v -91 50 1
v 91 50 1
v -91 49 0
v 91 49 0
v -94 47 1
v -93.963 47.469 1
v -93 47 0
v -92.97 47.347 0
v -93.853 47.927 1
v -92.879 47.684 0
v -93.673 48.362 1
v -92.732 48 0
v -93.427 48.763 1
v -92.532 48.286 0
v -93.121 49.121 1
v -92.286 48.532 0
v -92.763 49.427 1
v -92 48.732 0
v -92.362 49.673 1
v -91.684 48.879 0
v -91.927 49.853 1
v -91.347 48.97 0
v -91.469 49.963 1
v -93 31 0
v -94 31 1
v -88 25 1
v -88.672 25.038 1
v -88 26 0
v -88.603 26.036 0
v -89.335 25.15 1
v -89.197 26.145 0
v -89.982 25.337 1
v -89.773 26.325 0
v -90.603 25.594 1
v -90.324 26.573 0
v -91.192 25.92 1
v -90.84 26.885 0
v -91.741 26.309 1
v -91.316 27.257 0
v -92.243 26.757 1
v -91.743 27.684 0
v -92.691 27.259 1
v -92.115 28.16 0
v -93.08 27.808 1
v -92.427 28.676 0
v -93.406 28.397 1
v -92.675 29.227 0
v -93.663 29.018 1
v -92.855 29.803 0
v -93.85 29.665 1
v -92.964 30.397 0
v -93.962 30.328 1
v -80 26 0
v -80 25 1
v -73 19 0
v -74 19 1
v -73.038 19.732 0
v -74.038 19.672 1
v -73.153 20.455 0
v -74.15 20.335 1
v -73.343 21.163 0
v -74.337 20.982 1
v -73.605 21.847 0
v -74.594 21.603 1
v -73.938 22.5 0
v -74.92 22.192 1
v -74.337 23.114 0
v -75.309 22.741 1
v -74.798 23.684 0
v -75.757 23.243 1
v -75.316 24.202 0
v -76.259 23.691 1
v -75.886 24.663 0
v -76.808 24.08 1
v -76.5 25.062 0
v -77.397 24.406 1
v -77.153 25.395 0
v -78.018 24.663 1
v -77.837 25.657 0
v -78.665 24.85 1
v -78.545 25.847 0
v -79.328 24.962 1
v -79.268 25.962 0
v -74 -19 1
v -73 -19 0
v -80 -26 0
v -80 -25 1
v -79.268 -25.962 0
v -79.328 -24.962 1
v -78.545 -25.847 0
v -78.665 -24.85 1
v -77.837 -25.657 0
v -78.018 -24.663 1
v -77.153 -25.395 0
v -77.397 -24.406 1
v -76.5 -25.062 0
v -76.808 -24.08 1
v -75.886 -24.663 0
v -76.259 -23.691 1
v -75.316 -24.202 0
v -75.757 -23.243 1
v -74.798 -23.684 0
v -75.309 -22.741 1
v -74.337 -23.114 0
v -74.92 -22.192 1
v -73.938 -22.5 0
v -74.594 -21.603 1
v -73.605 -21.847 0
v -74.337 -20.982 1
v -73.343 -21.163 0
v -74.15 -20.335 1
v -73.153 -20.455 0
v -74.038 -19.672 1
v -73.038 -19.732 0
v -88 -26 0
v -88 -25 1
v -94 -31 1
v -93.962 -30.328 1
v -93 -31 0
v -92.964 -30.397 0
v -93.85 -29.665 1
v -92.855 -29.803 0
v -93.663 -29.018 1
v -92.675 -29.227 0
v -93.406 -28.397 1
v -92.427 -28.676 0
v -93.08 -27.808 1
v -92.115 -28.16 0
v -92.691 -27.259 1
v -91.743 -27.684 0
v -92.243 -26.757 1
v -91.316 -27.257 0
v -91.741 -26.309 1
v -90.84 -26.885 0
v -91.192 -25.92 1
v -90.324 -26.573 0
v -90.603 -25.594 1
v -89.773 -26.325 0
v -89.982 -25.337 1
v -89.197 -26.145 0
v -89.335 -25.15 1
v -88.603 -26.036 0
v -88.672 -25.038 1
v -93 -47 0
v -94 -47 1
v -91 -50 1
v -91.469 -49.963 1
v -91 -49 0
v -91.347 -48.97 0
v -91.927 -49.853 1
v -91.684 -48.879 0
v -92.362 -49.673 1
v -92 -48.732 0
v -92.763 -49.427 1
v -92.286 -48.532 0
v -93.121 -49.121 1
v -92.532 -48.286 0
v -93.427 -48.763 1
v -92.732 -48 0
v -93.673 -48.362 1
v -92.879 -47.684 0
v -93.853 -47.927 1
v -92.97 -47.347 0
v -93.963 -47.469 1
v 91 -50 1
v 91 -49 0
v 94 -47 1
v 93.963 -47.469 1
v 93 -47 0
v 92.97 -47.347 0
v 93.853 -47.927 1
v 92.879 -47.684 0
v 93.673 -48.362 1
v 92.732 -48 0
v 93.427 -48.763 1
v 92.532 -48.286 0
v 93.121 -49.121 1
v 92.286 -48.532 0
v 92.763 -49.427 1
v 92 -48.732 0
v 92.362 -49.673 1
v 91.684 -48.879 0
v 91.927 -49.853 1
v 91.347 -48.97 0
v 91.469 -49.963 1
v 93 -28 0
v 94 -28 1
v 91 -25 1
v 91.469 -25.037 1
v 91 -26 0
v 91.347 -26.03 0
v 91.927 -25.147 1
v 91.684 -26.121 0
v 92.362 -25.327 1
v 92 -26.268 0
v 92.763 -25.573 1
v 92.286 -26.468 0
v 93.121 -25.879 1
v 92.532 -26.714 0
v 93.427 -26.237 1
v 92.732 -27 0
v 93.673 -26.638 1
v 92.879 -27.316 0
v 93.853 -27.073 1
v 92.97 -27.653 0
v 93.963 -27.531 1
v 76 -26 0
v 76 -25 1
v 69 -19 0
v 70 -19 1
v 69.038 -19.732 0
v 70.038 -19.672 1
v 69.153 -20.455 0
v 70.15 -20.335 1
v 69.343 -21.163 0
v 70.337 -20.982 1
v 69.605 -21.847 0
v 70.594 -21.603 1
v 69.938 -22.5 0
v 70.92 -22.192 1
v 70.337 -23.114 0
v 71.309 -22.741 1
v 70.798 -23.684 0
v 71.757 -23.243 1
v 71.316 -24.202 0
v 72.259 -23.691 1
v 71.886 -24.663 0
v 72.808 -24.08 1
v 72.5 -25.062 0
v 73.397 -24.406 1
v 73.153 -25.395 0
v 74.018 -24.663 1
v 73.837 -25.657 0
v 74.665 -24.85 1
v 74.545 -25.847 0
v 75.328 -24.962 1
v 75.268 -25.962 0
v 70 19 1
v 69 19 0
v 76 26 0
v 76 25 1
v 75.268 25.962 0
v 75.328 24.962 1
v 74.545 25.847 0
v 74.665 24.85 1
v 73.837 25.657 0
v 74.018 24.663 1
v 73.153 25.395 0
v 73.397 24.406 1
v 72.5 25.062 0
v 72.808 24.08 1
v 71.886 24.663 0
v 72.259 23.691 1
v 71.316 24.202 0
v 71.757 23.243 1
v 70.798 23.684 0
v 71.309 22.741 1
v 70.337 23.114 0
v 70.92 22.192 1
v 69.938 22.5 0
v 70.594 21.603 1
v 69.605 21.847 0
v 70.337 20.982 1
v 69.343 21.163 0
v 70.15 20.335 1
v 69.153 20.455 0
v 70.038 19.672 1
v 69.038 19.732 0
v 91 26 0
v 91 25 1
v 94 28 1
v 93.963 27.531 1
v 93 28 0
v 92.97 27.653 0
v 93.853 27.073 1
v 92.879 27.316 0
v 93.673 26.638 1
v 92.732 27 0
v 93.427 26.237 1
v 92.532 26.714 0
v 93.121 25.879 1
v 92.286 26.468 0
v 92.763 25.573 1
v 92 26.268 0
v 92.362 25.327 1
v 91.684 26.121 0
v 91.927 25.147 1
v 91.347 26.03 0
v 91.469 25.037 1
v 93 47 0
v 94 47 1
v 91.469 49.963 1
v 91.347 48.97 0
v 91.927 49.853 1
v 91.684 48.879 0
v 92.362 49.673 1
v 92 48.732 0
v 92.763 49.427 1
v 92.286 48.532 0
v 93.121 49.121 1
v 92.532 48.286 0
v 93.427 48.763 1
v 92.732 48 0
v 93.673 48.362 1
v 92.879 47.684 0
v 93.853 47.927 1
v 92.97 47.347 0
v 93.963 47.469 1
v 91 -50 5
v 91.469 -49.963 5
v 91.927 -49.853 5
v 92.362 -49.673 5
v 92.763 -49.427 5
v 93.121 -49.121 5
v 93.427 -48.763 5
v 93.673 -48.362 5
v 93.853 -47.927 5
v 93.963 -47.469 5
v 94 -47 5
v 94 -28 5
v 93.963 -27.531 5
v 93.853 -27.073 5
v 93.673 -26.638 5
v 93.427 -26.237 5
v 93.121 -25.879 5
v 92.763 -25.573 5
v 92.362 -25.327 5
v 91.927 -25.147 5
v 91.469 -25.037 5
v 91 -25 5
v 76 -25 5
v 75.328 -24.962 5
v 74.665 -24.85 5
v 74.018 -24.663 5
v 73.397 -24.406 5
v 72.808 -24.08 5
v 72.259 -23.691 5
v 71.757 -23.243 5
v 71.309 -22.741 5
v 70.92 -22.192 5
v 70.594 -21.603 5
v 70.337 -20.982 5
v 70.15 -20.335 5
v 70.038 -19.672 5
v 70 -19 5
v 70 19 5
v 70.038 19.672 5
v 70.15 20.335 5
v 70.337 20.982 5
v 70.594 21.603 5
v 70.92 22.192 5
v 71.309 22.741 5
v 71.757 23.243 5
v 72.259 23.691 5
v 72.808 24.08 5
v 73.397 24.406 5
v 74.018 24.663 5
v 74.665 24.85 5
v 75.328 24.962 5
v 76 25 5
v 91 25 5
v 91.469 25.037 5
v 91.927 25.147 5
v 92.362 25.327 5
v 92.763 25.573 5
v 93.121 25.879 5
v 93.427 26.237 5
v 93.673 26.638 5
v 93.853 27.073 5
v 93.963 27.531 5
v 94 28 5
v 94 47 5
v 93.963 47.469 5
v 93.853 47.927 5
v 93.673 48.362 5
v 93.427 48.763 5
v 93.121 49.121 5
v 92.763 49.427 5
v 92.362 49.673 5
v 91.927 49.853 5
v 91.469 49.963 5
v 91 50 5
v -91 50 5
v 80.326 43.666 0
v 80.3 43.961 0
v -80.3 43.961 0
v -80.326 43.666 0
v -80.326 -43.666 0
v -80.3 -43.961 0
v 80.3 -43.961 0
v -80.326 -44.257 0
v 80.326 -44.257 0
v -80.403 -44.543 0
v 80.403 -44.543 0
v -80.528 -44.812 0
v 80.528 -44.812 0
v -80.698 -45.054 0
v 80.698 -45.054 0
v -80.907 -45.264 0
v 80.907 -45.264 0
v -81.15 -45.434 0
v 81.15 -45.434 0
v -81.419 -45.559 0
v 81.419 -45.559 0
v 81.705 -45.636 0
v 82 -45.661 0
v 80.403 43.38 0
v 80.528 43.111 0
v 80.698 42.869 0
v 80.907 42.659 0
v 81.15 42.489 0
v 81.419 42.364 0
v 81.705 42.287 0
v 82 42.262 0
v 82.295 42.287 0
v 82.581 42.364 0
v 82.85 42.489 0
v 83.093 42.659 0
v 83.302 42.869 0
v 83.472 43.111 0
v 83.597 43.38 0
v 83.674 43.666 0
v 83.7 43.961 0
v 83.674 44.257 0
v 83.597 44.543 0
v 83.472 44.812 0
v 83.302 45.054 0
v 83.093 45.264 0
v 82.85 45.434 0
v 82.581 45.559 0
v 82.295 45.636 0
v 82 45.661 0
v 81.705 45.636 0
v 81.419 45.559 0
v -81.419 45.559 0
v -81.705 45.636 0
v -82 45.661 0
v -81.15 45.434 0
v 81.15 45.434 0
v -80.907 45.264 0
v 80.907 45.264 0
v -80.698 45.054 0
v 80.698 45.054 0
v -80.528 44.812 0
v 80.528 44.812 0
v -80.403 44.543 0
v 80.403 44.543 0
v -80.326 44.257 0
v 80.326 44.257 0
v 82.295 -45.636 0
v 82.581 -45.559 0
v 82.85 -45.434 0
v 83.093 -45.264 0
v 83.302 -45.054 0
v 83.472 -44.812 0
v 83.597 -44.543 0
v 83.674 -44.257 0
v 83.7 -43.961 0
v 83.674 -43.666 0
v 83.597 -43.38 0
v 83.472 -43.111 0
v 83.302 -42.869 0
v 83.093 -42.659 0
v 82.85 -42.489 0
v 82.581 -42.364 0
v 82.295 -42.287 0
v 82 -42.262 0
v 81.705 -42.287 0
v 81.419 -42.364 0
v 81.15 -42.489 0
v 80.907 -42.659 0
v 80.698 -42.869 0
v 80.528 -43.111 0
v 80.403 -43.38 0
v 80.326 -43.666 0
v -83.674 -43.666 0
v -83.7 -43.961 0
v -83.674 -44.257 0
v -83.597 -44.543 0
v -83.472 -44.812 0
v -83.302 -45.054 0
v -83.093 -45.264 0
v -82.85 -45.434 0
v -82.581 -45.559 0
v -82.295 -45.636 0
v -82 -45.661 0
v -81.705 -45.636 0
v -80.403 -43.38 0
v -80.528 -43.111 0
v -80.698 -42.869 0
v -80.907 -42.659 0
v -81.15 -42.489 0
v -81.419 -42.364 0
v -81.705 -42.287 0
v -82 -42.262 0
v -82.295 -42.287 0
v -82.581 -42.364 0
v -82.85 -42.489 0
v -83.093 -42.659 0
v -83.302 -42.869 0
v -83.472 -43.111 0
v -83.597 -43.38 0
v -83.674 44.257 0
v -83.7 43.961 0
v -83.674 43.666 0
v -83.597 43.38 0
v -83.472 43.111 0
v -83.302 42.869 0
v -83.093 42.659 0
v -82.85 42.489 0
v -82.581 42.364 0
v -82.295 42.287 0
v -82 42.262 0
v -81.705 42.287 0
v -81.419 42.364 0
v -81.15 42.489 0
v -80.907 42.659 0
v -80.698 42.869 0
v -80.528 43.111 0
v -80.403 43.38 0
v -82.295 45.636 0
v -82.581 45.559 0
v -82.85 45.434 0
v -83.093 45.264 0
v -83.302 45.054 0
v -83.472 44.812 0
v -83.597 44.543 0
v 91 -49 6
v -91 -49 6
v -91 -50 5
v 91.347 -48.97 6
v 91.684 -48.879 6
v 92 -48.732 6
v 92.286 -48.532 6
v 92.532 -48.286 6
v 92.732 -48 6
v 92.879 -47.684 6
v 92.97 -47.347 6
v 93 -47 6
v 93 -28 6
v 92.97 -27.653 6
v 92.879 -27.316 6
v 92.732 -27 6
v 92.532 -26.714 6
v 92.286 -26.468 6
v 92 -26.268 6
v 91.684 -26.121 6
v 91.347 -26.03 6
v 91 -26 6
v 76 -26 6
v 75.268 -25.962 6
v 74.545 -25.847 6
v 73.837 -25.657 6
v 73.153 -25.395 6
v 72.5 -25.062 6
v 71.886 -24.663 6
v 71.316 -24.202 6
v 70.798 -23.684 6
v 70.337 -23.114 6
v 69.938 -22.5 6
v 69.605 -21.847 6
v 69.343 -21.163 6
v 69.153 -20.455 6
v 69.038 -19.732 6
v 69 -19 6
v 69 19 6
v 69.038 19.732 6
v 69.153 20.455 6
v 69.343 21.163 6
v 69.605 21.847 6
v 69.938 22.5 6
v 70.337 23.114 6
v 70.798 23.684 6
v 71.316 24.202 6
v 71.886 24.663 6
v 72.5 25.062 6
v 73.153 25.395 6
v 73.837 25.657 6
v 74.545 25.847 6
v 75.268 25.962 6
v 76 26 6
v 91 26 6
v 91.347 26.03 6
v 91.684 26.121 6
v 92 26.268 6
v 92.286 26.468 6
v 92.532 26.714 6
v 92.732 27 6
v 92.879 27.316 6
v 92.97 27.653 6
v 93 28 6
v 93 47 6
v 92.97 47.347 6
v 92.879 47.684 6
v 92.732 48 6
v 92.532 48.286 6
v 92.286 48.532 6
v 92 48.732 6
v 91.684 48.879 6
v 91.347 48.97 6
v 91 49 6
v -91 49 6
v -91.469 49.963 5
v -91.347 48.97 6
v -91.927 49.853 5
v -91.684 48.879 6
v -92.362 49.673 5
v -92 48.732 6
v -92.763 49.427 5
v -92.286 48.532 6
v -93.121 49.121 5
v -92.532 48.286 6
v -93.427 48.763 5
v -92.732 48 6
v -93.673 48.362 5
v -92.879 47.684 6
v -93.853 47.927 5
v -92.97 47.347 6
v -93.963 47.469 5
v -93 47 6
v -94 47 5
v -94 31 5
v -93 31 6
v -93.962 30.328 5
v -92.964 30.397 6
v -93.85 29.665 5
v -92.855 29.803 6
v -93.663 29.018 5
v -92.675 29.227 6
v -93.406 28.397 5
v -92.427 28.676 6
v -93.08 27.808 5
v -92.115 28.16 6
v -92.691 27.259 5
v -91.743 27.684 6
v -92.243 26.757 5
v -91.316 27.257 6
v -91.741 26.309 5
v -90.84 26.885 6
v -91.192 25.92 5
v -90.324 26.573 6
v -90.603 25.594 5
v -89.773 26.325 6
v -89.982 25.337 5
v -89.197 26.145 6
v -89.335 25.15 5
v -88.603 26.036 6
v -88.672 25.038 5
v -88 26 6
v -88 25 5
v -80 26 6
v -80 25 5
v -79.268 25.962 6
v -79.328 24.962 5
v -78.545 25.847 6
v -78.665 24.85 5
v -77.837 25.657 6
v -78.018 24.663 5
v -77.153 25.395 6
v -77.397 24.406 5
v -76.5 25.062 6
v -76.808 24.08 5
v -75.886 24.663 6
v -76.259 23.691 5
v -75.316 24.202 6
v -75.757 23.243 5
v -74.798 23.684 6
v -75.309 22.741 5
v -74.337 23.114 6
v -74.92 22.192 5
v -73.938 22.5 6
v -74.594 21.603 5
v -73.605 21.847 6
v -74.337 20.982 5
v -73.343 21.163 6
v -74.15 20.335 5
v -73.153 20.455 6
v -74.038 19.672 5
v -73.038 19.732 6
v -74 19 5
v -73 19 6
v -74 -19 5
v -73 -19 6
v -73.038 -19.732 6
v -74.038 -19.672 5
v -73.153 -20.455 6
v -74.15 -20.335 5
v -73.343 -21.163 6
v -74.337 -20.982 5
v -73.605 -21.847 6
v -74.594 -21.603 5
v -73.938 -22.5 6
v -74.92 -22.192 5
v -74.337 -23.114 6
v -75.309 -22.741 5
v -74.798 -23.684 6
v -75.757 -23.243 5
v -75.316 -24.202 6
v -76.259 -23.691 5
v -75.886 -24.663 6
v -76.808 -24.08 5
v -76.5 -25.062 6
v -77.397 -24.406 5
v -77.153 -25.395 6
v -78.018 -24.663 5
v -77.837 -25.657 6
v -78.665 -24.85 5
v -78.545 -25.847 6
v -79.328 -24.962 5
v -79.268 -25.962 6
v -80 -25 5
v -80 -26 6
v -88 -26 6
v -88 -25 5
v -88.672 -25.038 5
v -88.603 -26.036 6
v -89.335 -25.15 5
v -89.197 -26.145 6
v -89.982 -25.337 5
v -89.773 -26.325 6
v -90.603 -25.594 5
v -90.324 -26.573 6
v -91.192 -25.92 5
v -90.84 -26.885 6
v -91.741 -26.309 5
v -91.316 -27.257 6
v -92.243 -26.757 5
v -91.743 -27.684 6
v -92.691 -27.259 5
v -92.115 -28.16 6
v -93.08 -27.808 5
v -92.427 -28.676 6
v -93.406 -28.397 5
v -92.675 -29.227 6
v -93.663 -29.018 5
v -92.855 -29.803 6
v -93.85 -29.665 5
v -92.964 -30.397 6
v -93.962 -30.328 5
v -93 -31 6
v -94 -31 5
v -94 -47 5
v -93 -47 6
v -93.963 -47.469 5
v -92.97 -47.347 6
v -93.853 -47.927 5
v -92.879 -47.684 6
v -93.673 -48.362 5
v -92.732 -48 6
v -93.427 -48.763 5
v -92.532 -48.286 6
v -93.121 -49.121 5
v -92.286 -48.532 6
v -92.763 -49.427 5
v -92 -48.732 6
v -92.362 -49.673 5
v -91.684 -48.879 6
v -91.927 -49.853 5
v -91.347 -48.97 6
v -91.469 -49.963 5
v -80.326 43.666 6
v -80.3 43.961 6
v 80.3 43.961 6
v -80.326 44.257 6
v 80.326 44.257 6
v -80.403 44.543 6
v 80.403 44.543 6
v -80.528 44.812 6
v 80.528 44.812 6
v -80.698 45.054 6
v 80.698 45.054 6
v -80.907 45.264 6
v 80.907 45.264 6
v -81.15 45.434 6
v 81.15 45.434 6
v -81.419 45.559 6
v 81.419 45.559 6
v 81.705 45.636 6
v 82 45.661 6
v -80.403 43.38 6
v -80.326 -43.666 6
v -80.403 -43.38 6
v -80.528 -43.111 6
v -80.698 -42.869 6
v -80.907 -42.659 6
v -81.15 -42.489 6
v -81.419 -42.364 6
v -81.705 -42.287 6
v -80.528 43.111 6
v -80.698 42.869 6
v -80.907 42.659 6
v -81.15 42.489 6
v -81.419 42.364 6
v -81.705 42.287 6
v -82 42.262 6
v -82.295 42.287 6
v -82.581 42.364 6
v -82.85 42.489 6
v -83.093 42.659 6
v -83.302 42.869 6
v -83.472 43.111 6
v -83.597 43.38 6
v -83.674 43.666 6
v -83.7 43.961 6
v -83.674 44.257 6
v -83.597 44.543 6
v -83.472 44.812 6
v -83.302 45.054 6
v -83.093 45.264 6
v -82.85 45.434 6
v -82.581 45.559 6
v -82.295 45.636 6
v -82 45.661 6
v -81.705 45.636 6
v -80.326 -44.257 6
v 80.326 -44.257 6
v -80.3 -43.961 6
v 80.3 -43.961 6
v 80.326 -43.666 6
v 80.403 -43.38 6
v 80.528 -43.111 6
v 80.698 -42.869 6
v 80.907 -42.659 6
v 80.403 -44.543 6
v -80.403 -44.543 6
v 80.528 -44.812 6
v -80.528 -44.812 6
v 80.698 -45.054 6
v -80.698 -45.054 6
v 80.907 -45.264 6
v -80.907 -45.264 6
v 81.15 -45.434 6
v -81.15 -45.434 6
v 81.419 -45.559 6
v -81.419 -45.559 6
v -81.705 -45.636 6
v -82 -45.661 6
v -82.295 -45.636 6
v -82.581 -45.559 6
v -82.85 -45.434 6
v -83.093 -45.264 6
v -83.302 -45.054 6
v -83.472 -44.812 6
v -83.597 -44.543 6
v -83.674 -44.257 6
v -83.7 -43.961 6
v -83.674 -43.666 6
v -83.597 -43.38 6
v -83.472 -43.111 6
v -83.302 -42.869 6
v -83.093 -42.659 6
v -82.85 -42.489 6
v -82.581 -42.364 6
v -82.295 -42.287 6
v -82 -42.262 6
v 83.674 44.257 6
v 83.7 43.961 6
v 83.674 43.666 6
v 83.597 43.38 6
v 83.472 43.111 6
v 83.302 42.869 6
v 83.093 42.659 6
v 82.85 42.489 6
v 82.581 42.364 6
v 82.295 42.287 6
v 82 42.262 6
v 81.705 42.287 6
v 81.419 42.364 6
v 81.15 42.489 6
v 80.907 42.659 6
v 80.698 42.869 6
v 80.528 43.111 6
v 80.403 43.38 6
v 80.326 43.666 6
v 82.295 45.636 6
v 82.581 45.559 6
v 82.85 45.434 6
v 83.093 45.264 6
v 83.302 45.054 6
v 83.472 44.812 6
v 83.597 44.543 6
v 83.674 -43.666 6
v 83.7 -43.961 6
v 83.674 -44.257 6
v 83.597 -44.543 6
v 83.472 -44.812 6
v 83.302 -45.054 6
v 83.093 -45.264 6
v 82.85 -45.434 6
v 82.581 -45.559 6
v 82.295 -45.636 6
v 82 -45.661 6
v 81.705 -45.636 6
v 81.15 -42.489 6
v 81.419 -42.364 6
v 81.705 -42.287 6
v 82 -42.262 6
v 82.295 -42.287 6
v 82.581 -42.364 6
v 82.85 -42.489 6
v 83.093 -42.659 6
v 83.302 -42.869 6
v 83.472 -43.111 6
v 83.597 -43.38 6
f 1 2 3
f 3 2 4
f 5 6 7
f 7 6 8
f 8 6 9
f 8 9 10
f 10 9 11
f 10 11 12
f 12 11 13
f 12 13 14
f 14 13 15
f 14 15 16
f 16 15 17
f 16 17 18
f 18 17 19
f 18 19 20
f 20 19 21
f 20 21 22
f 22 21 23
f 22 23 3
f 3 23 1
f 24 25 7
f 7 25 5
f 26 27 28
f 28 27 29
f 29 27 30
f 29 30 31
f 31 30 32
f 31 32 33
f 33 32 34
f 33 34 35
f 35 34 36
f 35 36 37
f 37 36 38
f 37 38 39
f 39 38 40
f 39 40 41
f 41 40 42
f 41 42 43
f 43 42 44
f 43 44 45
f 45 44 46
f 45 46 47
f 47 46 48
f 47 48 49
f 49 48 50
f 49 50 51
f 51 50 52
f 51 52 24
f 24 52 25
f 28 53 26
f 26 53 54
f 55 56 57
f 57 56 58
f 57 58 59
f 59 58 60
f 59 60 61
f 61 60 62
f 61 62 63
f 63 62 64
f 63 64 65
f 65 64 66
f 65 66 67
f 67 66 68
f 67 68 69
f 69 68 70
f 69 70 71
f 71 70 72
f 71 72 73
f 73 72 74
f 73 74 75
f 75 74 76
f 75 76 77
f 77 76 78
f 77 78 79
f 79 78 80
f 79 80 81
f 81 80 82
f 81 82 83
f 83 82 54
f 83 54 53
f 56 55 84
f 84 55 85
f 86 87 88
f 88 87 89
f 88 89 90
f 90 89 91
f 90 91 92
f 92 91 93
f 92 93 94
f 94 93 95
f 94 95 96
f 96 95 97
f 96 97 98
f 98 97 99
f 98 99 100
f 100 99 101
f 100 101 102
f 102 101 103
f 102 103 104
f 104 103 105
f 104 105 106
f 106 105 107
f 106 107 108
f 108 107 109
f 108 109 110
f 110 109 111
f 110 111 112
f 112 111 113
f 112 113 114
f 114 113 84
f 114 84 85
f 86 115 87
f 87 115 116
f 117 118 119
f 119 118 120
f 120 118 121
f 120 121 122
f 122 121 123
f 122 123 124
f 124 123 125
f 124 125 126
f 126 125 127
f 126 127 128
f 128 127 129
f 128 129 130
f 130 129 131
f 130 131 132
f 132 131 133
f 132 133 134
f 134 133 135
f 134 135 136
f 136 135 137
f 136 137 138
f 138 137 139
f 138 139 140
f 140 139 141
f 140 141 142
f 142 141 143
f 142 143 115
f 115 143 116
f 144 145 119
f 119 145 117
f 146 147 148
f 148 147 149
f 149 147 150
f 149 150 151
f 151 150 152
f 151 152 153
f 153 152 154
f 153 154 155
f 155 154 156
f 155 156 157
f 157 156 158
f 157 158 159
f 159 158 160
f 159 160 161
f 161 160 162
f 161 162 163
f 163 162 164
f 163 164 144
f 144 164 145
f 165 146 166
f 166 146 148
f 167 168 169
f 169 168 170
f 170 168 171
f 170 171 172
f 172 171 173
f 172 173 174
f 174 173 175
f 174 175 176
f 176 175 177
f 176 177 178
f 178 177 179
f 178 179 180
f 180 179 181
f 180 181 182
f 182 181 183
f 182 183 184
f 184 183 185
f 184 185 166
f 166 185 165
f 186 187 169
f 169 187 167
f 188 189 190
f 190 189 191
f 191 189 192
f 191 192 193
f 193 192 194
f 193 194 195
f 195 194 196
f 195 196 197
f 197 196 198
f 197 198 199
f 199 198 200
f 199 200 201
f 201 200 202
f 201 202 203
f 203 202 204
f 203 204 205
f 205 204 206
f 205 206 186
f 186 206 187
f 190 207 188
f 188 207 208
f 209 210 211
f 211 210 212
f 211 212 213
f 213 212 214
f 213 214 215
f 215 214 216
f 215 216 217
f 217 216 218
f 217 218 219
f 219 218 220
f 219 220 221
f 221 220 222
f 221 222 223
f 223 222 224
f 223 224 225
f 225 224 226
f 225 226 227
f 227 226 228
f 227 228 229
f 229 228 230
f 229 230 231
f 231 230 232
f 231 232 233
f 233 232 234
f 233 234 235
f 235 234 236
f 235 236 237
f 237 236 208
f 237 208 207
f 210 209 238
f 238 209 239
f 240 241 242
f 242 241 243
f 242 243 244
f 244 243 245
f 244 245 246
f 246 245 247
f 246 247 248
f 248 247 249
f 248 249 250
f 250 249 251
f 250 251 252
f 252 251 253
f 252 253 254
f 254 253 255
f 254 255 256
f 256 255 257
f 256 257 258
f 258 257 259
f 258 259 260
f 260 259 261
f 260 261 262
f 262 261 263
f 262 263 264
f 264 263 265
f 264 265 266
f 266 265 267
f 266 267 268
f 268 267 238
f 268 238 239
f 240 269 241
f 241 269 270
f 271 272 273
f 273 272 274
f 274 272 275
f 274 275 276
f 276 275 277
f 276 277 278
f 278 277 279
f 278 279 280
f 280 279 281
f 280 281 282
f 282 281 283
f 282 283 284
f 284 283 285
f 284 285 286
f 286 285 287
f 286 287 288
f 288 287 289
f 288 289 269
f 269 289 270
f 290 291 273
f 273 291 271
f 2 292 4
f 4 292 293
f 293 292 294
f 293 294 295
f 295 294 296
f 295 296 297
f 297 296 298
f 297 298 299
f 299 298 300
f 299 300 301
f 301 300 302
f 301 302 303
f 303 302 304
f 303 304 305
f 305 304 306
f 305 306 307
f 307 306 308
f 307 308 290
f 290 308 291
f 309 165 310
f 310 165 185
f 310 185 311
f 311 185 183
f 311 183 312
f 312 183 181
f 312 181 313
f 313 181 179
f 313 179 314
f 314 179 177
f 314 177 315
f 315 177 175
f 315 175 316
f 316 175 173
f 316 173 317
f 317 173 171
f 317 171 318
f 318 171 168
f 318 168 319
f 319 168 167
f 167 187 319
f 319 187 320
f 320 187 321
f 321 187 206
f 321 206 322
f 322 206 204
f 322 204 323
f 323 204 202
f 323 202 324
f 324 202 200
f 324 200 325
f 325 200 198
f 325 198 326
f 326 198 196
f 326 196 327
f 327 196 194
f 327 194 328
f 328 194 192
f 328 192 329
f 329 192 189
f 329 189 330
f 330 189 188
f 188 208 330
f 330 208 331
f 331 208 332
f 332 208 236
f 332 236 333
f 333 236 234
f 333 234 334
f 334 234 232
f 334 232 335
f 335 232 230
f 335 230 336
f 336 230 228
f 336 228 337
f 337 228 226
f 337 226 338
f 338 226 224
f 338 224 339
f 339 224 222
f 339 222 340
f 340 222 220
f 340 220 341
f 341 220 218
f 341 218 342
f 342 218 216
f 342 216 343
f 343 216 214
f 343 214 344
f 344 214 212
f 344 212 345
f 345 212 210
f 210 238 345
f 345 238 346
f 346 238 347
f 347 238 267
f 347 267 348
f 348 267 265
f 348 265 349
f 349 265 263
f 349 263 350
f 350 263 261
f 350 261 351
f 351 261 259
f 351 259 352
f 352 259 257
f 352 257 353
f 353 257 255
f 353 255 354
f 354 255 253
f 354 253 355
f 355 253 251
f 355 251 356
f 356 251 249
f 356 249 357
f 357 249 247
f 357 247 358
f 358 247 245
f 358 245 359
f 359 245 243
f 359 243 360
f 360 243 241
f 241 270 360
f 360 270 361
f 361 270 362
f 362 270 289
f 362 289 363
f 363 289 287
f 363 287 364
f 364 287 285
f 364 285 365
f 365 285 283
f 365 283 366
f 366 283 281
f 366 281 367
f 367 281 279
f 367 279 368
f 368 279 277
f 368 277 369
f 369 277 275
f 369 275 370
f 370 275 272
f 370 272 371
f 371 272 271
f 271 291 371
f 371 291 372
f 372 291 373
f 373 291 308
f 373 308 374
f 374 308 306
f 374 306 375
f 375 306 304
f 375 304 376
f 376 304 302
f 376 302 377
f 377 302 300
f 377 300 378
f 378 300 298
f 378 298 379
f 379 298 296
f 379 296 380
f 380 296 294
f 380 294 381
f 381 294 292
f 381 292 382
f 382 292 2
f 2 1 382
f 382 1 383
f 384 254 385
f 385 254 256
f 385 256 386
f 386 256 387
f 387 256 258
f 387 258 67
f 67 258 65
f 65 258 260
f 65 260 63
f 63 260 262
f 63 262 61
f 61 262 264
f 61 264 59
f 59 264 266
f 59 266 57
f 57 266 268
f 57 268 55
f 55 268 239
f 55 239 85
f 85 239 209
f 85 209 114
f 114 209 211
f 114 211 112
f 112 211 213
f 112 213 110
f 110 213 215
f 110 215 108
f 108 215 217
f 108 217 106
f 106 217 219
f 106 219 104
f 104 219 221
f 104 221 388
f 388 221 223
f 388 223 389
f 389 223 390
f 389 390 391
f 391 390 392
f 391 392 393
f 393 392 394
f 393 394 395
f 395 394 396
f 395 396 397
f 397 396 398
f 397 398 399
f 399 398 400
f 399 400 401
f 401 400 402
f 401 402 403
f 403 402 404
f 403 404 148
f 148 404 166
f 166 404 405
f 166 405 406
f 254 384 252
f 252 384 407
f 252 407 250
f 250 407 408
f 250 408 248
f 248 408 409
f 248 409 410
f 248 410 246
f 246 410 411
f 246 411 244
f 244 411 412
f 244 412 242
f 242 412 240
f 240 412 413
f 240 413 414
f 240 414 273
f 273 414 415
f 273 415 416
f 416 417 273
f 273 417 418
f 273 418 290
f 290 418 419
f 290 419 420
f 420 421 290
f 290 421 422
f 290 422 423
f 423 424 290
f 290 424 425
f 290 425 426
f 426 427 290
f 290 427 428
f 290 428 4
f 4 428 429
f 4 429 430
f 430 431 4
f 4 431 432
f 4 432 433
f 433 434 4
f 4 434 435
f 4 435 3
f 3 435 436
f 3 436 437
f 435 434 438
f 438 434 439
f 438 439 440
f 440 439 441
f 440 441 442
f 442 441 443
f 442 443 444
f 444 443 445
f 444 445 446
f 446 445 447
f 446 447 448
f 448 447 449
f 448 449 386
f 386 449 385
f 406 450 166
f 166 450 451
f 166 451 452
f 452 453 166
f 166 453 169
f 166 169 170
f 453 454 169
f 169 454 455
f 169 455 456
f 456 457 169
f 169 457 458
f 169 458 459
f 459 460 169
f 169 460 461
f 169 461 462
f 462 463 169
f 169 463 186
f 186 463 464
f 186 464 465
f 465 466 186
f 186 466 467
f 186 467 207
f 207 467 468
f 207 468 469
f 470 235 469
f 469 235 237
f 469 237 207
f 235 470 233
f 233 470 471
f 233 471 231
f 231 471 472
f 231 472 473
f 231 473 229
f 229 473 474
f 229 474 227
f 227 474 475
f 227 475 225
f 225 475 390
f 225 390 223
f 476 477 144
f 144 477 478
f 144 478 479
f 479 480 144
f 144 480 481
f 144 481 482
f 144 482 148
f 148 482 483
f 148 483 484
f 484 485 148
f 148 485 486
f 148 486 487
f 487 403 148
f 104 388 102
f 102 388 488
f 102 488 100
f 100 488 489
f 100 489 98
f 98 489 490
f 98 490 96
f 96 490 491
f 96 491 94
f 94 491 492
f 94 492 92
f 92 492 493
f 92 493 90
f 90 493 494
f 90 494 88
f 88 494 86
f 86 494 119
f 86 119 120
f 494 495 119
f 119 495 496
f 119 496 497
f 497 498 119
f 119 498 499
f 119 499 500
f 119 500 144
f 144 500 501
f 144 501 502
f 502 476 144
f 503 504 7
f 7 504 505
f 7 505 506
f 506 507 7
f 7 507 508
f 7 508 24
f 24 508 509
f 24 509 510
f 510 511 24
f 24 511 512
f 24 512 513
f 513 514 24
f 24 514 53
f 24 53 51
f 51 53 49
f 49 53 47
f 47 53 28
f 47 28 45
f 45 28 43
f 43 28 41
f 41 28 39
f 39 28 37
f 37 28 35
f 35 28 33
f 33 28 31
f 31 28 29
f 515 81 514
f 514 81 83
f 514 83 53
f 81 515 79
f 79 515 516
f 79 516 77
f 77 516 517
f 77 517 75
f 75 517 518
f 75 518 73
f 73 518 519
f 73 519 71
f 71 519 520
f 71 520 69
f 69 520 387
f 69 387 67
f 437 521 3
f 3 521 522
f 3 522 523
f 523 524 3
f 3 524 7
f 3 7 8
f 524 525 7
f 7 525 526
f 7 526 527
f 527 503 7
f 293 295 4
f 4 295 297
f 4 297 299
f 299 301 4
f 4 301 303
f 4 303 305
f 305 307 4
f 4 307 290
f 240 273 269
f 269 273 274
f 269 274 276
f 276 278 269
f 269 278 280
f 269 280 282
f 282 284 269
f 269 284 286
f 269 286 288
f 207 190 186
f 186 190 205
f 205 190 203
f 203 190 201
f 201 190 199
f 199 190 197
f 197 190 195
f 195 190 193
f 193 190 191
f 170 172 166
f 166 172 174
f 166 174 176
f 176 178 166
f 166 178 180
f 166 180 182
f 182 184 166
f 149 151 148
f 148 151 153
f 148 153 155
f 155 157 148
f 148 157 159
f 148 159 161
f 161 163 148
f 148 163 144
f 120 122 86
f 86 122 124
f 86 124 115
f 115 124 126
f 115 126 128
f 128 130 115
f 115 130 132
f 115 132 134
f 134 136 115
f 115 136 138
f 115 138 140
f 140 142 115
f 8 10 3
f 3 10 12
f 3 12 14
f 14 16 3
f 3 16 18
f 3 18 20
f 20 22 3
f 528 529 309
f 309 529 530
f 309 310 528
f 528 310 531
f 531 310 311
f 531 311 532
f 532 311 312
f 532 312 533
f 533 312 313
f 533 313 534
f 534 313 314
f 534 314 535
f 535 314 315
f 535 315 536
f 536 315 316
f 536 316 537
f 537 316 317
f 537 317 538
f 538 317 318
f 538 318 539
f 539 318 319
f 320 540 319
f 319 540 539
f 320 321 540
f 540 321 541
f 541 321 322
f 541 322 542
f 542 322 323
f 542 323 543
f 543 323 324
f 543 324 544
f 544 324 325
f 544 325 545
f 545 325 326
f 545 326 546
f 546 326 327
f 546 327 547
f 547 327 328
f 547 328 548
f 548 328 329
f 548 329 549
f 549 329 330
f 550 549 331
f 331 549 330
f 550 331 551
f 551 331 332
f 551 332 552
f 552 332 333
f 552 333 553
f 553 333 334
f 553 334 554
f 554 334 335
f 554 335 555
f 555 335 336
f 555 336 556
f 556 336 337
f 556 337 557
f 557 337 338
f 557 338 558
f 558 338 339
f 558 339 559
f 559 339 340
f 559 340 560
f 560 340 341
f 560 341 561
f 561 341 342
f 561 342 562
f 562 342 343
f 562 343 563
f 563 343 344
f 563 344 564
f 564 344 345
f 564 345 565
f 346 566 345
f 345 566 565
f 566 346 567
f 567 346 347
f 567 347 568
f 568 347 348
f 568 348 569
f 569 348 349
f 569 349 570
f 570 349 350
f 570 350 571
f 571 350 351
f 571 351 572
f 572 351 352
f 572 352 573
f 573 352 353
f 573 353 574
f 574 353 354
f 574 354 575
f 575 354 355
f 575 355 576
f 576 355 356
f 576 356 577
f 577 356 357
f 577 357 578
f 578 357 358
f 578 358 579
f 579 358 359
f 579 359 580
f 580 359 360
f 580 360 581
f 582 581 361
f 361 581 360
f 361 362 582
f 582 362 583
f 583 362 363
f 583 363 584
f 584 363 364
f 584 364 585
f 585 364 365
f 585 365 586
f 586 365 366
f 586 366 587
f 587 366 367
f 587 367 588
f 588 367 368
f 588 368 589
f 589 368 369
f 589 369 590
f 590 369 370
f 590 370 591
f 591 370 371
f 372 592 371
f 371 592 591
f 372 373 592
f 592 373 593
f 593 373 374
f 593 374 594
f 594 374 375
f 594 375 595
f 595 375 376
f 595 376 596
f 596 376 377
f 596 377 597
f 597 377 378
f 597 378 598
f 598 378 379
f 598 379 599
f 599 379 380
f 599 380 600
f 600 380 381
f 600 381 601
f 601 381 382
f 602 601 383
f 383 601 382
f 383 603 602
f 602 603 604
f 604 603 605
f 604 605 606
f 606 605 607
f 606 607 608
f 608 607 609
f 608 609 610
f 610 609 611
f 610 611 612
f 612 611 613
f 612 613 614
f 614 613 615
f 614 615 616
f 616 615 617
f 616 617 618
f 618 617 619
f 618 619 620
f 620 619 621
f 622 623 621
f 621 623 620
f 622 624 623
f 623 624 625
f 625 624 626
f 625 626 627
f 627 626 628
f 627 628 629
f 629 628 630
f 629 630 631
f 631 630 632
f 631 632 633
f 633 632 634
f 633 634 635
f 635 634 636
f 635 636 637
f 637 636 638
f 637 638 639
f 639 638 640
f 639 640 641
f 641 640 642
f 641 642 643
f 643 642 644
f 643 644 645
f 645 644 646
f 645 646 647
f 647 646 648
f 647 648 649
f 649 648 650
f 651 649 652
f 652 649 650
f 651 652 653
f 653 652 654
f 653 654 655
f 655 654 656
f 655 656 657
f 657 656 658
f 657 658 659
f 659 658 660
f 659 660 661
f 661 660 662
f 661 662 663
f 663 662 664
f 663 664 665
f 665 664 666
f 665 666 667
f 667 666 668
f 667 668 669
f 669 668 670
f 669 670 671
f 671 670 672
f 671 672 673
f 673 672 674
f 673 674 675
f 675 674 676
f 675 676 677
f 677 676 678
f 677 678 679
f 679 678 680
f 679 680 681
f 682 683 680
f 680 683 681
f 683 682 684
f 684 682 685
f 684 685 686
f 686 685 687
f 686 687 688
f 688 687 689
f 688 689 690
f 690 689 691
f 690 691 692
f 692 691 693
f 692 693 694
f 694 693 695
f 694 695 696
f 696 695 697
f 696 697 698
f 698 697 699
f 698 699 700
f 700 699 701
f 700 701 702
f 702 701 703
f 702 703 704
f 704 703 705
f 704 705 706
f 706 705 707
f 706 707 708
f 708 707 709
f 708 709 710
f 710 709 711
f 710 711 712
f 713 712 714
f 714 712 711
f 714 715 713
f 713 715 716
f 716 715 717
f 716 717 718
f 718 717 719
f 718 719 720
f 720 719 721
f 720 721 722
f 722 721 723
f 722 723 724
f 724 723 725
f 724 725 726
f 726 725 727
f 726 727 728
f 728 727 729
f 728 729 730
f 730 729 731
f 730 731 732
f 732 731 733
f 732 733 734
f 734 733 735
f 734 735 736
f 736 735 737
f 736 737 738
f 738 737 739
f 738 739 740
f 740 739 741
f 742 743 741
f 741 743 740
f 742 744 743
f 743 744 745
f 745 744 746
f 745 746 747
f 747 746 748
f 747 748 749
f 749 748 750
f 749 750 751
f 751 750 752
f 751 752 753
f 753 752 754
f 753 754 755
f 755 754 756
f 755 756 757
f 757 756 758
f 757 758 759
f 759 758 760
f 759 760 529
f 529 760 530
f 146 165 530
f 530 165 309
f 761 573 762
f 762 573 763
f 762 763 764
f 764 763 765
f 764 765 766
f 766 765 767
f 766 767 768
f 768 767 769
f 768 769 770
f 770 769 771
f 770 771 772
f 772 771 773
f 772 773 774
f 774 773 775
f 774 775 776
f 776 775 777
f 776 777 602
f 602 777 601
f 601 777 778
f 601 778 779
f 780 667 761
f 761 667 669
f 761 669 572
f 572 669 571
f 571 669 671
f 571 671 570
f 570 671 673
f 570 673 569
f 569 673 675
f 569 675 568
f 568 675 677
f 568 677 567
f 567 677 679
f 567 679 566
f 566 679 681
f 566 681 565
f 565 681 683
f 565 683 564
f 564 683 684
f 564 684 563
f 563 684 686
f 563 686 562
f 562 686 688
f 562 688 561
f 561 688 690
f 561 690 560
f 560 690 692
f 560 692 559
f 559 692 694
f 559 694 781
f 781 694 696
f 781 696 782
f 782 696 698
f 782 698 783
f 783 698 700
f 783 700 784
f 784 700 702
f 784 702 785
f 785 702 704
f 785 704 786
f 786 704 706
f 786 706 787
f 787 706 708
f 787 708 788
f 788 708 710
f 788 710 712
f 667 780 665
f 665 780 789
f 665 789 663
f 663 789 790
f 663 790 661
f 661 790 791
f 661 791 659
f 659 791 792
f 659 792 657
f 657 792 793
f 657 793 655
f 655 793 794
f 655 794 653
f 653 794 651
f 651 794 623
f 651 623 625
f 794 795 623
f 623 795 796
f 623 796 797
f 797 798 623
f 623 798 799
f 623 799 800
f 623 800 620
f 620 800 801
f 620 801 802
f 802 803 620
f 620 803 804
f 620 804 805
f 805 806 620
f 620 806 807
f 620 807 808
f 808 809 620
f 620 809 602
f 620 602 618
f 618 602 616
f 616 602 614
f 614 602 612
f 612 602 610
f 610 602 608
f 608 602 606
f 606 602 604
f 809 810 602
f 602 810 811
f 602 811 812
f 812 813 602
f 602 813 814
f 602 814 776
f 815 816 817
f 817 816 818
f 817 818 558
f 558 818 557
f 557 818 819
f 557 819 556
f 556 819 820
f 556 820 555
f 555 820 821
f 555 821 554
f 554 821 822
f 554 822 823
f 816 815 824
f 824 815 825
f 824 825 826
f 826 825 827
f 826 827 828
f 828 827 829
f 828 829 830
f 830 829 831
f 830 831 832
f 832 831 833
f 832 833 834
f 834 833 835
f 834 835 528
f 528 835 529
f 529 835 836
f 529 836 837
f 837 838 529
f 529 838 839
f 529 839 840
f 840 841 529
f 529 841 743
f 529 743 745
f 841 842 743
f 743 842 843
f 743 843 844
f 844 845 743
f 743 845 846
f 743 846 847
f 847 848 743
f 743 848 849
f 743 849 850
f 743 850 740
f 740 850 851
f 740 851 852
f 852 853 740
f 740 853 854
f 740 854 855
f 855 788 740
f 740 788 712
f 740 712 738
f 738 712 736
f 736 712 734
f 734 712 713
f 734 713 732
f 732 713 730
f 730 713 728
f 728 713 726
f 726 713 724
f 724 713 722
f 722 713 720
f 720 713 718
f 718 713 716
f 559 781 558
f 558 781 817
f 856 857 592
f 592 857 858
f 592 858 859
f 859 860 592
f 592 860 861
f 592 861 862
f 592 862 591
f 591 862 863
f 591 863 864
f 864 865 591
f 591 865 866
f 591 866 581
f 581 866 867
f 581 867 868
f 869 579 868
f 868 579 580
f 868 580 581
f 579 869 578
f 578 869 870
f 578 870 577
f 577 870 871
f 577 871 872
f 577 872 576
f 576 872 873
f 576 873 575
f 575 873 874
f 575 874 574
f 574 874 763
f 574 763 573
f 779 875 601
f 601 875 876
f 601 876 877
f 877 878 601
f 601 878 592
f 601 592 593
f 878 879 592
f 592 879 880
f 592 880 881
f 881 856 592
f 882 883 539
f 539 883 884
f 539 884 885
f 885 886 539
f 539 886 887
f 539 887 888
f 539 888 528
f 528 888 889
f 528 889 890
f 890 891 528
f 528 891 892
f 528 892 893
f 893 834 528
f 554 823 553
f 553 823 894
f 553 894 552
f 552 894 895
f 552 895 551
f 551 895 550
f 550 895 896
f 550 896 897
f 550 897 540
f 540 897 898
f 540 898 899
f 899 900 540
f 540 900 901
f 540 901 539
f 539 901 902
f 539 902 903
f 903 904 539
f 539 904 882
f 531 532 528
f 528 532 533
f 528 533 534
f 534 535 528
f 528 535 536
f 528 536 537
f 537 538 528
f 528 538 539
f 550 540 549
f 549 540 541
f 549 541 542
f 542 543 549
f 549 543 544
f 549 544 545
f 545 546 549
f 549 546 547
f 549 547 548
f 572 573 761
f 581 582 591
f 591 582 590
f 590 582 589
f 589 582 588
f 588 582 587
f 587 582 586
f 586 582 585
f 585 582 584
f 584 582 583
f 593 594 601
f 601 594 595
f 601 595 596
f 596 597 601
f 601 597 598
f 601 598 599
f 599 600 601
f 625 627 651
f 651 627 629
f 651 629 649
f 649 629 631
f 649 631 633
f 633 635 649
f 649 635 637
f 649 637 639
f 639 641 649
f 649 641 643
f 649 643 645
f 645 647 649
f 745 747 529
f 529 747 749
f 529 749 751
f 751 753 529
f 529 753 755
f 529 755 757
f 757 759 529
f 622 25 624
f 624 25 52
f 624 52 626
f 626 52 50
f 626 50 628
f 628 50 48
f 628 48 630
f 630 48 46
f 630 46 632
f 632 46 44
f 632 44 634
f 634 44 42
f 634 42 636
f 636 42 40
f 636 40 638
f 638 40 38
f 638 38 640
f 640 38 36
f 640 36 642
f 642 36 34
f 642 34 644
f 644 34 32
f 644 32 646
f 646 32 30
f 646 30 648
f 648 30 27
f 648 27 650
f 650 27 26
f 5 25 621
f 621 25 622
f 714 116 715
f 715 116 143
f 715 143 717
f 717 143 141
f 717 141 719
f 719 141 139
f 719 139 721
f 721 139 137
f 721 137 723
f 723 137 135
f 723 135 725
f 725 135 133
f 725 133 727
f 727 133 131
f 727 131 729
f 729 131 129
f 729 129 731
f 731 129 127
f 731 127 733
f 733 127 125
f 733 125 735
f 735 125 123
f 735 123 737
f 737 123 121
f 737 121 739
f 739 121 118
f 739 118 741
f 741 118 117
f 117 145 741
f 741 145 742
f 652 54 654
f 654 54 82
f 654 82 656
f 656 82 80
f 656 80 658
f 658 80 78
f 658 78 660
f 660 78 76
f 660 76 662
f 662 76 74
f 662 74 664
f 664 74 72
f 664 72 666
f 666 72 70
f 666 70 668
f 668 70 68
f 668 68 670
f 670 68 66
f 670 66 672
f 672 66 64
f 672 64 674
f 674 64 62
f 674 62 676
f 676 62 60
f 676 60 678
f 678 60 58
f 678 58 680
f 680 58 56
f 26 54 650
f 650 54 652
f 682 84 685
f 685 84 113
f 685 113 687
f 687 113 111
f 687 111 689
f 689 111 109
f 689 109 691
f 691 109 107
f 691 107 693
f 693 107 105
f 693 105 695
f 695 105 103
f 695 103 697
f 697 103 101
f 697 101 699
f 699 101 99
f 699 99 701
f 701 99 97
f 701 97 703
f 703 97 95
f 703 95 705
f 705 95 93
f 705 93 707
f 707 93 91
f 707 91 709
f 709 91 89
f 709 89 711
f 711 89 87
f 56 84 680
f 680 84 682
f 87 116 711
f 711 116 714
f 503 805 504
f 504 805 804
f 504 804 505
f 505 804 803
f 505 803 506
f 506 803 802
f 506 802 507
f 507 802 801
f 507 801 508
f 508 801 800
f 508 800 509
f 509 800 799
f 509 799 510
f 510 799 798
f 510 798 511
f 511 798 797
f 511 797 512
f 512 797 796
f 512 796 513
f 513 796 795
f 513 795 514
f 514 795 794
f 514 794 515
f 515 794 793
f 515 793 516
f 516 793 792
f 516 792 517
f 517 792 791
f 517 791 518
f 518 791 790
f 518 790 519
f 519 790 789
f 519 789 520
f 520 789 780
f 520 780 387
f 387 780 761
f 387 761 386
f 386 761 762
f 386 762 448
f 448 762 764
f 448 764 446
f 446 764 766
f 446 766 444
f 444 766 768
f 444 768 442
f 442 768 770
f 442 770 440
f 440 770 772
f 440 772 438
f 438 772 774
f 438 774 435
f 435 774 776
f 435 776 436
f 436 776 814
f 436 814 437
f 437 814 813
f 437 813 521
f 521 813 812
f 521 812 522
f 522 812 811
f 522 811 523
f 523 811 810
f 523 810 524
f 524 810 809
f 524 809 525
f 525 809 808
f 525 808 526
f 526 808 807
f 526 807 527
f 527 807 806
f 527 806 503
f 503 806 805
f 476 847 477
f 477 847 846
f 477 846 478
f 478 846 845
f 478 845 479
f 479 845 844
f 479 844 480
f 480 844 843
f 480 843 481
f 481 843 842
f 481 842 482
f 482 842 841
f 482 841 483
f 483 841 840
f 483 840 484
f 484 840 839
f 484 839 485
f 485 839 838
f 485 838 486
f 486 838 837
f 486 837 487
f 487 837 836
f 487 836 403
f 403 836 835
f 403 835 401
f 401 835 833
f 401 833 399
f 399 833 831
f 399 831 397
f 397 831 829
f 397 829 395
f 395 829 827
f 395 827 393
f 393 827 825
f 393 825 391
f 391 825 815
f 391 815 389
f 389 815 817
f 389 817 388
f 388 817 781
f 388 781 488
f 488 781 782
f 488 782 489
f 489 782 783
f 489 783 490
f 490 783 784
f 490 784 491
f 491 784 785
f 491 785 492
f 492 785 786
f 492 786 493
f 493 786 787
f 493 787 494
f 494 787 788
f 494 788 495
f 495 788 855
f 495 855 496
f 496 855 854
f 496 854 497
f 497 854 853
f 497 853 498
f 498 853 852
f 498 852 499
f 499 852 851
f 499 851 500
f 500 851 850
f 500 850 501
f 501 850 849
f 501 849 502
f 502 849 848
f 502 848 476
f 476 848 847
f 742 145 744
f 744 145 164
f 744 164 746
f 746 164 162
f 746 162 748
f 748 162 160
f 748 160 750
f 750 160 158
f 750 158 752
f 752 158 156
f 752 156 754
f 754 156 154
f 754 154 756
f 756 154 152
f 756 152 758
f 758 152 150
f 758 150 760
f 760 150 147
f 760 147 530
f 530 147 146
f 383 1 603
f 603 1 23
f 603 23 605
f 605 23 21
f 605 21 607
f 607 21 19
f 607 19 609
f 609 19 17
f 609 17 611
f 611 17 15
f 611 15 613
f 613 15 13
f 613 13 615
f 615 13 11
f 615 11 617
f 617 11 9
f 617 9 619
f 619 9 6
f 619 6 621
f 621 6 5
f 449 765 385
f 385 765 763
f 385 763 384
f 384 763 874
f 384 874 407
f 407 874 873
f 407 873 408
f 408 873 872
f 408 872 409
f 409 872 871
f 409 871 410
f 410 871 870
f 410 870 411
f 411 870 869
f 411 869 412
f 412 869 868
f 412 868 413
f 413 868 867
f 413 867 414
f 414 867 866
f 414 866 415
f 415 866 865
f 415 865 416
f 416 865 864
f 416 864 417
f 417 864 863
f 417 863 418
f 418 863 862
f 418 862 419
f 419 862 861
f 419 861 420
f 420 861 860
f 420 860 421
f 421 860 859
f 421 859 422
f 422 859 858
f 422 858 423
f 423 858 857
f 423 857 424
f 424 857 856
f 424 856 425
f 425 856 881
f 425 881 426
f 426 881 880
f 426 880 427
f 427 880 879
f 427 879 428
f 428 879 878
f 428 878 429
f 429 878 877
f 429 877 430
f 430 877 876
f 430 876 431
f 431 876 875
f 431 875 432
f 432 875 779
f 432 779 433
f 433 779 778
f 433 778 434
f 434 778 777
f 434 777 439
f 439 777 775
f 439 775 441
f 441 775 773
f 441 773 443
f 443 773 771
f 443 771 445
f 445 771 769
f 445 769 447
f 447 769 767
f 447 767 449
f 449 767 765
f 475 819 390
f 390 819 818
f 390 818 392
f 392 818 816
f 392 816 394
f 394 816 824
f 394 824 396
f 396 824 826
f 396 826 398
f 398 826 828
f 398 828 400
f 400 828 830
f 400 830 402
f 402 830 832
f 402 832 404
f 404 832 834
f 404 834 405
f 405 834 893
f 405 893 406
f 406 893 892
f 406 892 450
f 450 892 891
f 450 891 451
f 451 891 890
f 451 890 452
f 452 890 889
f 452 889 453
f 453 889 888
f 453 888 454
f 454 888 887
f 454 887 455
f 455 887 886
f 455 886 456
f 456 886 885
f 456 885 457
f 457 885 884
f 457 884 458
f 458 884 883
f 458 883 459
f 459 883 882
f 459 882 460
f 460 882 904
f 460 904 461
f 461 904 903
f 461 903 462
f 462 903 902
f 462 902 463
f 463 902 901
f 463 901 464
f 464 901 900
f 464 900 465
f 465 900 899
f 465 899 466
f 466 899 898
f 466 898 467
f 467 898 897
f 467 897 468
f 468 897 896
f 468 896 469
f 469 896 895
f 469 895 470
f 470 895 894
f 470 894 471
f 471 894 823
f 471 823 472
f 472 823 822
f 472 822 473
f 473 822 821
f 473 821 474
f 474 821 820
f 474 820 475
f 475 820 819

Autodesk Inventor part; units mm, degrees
ref_plane "YZ Plane" through (0, 0, 0) normal (1, 0, 0) x (0, 1, 0)
ref_plane "XZ Plane" through (0, 0, 0) normal (0, 1, 0) x (-1, 0, 0)
ref_plane "XY Plane" through (0, 0, 0) normal (0, 0, 1) x (1, 0, 0)
sketch "Sketch1" plane through (0, 0, 0) normal (0, 0, 1) x (1, 0, 0)
  line L0 (-94, 50) -> (94, 50)
  line L1 (94, 50) -> (94, -50)
  line L2 (94, -50) -> (-94, -50)
  line L3 (-94, -50) -> (-94, 50)
  point P0 (0, 0)
  point P1 (0, 50)
  point P2 (94, 0)
  dimension "d2" = 100
  dimension "d3" = 188
extrude "Extrusion1" add sketch "Sketch1" along normal blind 6
sketch "Sketch5" plane through (0, 0, 6) normal (0, 0, 1) x (1, 0, 0)
  circle A0 centre (82, -43.9615) radius 1.7
  circle A1 centre (82, 43.9615) radius 1.7
  line L0 (82, -43.9615) -> (82, 43.9615) construction
  line L1 (94, -50) -> (94, 50) projected
  point P0 (0, 0)
  point P1 (82, 0)
  point P2 (94, 0)
  dimension "d27" = 3.4
  dimension "d28" = 12
  dimension "d29" = 87.923
extrude "Extrusion5" cut sketch "Sketch5" against normal through all
sketch "Sketch6" plane through (0, 0, 6) normal (0, 0, 1) x (1, 0, 0)
  line L0 (70, 25) -> (94, 25)
  line L1 (94, 25) -> (94, -25)
  line L2 (94, -25) -> (70, -25)
  line L3 (70, -25) -> (70, 25)
  line L4 (94, -50) -> (94, 50) projected
  point P0 (0, 0)
  point P1 (94, 0)
  dimension "d34" = 24
  dimension "d35" = 50
extrude "Extrusion6" cut sketch "Sketch6" against normal through all
fillet "Fillet2" radius 6 2 edges at (70, -25, 3) (70, 25, 3)
fillet "Fillet3" radius 3 6 edges at (94, -25, 3) (94, -50, 3) (94, 25, 3) (94, 50, 3) (-94, 50, 3) (-94, -50, 3)
sketch "Sketch9" plane through (0, 0, 6) normal (0, 0, 1) x (1, 0, 0)
  circle A0 centre (-82, 43.9615) radius 1.7
  circle A1 centre (-82, -43.9615) radius 1.7
  line L0 (-82, -43.9615) -> (-82, 43.9615) construction
  line L1 (-94, 47) -> (-94, -47) projected
  point P0 (0, 0)
  point P1 (-82, 0)
  point P2 (-94, 0)
  dimension "d47" = 87.923
  dimension "d48" = 12
  dimension "d49" = 3.4
extrude "Extrusion8" cut sketch "Sketch9" against normal through all
sketch "Sketch10" plane through (0, 0, 6) normal (0, 0, 1) x (1, 0, 0)
  line L0 (-94, 47) -> (-94, -47) projected
  line L1 (-94, -25) -> (-74, -25)
  line L2 (-74, -25) -> (-74, 25)
  line L3 (-74, 25) -> (-94, 25)
  line L4 (-94, 25) -> (-94, -25)
  point P0 (0, 0)
  point P1 (-94, 0)
  dimension "d52" = 50
  dimension "d53" = 20
extrude "Extrusion9" cut sketch "Sketch10" against normal through all
fillet "Fillet4" radius 6 4 edges at (-74, -25, 3) (-74, 25, 3) (-94, -25, 3) (-94, 25, 3)
chamfer "Chamfer5" distance 1 angle 45 48 edges at (0, -50, 6) (93.1213, -49.1213, 6) (94, -37.5, 6) (93.1213, -25.8787, 6) (83.5, -25, 6) (71.7574, -23.2426, 6) (70, 0, 6) (71.7574, 23.2426, 6) (83.5, 25, 6) (93.1213, 25.8787, 6) (94, 37.5, 6) (93.1213, 49.1213, 6) (0, 50, 6) (-93.1213, 49.1213, 6) (-94, 39, 6) (-92.2426, 26.7574, 6) (-84, 25, 6) (-75.7574, 23.2426, 6) (-74, 0, 6) (-75.7574, -23.2426, 6) (-84, -25, 6) (-92.2426, -26.7574, 6) (-94, -39, 6) (-93.1213, -49.1213, 6) (0, 50, 0) (-93.1213, 49.1213, 0) (-94, 39, 0) (-92.2426, 26.7574, 0) (-84, 25, 0) (-75.7574, 23.2426, 0) (-74, 0, 0) (-75.7574, -23.2426, 0) (-84, -25, 0) (-92.2426, -26.7574, 0) (-94, -39, 0) (-93.1213, -49.1213, 0) (0, -50, 0) (93.1213, -49.1213, 0) (94, -37.5, 0) (93.1213, -25.8787, 0) (83.5, -25, 0) (71.7574, -23.2426, 0) (70, 0, 0) (71.7574, 23.2426, 0) (83.5, 25, 0) (93.1213, 25.8787, 0) (94, 37.5, 0) (93.1213, 49.1213, 0)
properties part number "Cathode-Cover-Plate-bottom-side"
